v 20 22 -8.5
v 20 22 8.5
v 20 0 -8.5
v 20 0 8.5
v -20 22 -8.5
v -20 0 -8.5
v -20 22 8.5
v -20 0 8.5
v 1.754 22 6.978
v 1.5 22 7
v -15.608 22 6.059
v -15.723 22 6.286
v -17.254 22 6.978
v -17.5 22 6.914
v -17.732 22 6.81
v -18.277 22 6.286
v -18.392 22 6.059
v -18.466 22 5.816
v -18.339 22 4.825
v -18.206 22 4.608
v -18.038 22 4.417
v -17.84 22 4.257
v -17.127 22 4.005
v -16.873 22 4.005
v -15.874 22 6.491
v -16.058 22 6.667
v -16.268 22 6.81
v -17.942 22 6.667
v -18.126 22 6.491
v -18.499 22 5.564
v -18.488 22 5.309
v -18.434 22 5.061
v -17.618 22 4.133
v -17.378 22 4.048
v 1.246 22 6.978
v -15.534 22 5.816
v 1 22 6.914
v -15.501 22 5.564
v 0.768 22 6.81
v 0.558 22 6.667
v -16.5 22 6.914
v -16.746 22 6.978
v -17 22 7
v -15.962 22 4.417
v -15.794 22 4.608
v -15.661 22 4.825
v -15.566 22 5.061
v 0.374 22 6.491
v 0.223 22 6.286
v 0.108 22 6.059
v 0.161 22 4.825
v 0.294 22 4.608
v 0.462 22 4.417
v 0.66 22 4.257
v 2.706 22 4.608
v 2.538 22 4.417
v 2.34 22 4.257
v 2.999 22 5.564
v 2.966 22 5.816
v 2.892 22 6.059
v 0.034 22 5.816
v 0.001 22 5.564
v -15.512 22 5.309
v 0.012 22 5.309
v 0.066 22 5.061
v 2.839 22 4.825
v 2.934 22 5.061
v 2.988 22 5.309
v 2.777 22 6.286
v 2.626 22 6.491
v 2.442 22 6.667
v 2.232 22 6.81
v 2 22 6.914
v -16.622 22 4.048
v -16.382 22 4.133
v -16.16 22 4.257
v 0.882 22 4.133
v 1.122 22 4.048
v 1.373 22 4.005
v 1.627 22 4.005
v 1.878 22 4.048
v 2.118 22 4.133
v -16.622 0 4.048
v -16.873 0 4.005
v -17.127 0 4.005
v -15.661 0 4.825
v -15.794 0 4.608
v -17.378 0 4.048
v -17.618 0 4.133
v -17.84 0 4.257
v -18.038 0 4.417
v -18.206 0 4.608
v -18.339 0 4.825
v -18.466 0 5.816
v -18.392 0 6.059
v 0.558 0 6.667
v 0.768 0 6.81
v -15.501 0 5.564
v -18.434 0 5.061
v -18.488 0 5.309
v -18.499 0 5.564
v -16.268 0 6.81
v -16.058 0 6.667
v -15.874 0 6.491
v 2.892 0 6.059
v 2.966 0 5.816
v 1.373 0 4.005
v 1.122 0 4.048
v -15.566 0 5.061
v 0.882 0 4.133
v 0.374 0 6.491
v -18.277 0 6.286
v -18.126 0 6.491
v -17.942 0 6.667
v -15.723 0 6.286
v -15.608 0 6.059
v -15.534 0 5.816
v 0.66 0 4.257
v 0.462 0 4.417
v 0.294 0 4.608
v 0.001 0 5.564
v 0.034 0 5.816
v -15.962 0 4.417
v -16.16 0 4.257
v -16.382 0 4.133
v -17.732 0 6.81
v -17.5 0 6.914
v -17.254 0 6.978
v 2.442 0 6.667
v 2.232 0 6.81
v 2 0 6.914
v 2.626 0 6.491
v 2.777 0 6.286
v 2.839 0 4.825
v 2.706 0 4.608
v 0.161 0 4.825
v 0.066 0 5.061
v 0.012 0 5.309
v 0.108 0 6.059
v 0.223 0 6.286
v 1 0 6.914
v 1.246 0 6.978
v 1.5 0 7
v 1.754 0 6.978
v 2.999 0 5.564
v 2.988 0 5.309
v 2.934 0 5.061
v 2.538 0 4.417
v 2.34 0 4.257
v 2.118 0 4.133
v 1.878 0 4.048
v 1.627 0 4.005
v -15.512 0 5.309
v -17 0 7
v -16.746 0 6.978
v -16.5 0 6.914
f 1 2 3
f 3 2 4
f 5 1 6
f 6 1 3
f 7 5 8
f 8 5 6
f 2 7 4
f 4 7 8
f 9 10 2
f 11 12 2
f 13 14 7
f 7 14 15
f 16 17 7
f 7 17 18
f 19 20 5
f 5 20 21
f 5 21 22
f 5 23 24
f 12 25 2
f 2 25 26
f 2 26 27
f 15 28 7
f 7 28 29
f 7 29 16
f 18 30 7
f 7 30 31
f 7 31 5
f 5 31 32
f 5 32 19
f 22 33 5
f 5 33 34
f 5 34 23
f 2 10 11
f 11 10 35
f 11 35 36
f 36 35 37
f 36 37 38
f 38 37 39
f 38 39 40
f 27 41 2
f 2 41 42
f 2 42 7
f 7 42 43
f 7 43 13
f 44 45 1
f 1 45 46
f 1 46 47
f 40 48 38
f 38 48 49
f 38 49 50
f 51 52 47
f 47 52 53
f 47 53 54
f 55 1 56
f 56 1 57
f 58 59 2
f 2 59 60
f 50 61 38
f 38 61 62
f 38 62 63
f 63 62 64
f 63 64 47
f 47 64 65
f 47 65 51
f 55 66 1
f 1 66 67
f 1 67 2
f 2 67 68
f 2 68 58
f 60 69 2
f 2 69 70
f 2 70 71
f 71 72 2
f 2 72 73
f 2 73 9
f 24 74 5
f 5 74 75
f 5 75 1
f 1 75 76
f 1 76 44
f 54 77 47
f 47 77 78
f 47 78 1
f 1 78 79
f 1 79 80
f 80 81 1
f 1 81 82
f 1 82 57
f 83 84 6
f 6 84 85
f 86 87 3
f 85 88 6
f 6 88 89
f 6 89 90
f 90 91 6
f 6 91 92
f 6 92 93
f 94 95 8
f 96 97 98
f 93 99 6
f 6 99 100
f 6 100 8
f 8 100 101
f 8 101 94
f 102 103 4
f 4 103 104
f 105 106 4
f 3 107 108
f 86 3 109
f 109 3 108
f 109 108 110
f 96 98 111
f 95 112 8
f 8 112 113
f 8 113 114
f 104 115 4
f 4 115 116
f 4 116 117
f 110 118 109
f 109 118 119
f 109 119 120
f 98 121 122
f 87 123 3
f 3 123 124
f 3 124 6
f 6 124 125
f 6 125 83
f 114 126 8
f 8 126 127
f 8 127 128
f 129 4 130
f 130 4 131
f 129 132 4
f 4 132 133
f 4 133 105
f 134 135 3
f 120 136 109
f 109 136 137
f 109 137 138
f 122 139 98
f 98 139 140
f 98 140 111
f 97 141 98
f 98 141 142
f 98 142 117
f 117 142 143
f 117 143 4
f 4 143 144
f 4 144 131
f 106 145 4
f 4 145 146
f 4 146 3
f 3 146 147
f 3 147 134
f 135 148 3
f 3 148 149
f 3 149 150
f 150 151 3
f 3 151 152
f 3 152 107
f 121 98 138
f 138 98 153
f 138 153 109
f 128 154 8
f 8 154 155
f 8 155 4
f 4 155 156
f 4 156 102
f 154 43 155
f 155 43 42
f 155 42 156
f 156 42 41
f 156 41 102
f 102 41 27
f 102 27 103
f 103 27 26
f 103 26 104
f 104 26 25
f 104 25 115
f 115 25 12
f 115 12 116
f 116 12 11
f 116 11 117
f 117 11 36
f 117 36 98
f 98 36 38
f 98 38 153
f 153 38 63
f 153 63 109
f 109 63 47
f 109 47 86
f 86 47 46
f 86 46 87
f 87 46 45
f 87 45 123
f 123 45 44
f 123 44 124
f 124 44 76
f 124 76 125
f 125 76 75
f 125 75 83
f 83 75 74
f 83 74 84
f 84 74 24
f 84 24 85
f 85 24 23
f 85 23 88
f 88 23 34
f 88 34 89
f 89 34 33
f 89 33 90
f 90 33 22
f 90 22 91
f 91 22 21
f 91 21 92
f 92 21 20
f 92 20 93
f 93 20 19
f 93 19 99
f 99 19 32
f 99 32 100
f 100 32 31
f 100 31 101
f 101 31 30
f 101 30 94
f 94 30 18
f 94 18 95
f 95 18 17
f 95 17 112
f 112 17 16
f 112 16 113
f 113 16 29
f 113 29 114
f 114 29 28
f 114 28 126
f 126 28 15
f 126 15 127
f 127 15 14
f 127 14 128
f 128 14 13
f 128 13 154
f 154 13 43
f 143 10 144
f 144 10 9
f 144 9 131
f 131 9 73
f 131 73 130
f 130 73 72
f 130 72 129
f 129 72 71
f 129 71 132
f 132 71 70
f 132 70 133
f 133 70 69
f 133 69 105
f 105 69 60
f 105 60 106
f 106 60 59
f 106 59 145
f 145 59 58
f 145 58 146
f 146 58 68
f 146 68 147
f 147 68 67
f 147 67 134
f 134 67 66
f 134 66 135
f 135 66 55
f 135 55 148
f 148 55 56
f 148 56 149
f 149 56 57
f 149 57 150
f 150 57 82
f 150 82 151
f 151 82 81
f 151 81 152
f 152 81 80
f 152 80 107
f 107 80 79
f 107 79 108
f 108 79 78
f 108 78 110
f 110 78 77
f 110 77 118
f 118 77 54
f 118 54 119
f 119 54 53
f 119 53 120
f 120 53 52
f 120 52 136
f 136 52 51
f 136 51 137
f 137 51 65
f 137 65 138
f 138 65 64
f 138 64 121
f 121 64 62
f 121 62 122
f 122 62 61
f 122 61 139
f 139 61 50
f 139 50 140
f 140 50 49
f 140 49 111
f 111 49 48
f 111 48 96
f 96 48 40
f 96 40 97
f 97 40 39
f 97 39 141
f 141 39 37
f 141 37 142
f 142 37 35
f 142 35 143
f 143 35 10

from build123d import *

# Parameters (mm, degrees)
SKETCH1_W           = 40
SKETCH1_H           = 17
BOSS_EXTRUDE1_DEPTH = 22
SKETCH2_R           = 1.5
CUT_EXTRUDE1_DEPTH  = 22
SKETCH3_R           = 1.5
CUT_EXTRUDE2_DEPTH  = 22


with BuildPart() as part:
    # Sketch1 → Boss-Extrude1 (new body)
    with BuildSketch(Plane(origin=(0, 0, 0), x_dir=(1, 0, 0), z_dir=(0, 1, 0))):
        Rectangle(SKETCH1_W, SKETCH1_H)
    extrude(amount=BOSS_EXTRUDE1_DEPTH)

    # Sketch2 → Cut-Extrude1 (cut)
    with BuildSketch(Plane(origin=(0, 22, 0), x_dir=(1, 0, 0), z_dir=(0, 1, 0))):
        with Locations(Location((-17, -5.5, 0), (0, 0, 270))):
            Circle(SKETCH2_R)
    extrude(amount=-CUT_EXTRUDE1_DEPTH, mode=Mode.SUBTRACT)

    # Sketch3 → Cut-Extrude2 (cut)
    with BuildSketch(Plane(origin=(0, 22, 0), x_dir=(1, 0, 0), z_dir=(0, 1, 0))):
        with Locations(Location((1.5, -5.5, 0), (0, 0, 270))):
            Circle(SKETCH3_R)
    extrude(amount=-CUT_EXTRUDE2_DEPTH, mode=Mode.SUBTRACT)


solid = part.part
